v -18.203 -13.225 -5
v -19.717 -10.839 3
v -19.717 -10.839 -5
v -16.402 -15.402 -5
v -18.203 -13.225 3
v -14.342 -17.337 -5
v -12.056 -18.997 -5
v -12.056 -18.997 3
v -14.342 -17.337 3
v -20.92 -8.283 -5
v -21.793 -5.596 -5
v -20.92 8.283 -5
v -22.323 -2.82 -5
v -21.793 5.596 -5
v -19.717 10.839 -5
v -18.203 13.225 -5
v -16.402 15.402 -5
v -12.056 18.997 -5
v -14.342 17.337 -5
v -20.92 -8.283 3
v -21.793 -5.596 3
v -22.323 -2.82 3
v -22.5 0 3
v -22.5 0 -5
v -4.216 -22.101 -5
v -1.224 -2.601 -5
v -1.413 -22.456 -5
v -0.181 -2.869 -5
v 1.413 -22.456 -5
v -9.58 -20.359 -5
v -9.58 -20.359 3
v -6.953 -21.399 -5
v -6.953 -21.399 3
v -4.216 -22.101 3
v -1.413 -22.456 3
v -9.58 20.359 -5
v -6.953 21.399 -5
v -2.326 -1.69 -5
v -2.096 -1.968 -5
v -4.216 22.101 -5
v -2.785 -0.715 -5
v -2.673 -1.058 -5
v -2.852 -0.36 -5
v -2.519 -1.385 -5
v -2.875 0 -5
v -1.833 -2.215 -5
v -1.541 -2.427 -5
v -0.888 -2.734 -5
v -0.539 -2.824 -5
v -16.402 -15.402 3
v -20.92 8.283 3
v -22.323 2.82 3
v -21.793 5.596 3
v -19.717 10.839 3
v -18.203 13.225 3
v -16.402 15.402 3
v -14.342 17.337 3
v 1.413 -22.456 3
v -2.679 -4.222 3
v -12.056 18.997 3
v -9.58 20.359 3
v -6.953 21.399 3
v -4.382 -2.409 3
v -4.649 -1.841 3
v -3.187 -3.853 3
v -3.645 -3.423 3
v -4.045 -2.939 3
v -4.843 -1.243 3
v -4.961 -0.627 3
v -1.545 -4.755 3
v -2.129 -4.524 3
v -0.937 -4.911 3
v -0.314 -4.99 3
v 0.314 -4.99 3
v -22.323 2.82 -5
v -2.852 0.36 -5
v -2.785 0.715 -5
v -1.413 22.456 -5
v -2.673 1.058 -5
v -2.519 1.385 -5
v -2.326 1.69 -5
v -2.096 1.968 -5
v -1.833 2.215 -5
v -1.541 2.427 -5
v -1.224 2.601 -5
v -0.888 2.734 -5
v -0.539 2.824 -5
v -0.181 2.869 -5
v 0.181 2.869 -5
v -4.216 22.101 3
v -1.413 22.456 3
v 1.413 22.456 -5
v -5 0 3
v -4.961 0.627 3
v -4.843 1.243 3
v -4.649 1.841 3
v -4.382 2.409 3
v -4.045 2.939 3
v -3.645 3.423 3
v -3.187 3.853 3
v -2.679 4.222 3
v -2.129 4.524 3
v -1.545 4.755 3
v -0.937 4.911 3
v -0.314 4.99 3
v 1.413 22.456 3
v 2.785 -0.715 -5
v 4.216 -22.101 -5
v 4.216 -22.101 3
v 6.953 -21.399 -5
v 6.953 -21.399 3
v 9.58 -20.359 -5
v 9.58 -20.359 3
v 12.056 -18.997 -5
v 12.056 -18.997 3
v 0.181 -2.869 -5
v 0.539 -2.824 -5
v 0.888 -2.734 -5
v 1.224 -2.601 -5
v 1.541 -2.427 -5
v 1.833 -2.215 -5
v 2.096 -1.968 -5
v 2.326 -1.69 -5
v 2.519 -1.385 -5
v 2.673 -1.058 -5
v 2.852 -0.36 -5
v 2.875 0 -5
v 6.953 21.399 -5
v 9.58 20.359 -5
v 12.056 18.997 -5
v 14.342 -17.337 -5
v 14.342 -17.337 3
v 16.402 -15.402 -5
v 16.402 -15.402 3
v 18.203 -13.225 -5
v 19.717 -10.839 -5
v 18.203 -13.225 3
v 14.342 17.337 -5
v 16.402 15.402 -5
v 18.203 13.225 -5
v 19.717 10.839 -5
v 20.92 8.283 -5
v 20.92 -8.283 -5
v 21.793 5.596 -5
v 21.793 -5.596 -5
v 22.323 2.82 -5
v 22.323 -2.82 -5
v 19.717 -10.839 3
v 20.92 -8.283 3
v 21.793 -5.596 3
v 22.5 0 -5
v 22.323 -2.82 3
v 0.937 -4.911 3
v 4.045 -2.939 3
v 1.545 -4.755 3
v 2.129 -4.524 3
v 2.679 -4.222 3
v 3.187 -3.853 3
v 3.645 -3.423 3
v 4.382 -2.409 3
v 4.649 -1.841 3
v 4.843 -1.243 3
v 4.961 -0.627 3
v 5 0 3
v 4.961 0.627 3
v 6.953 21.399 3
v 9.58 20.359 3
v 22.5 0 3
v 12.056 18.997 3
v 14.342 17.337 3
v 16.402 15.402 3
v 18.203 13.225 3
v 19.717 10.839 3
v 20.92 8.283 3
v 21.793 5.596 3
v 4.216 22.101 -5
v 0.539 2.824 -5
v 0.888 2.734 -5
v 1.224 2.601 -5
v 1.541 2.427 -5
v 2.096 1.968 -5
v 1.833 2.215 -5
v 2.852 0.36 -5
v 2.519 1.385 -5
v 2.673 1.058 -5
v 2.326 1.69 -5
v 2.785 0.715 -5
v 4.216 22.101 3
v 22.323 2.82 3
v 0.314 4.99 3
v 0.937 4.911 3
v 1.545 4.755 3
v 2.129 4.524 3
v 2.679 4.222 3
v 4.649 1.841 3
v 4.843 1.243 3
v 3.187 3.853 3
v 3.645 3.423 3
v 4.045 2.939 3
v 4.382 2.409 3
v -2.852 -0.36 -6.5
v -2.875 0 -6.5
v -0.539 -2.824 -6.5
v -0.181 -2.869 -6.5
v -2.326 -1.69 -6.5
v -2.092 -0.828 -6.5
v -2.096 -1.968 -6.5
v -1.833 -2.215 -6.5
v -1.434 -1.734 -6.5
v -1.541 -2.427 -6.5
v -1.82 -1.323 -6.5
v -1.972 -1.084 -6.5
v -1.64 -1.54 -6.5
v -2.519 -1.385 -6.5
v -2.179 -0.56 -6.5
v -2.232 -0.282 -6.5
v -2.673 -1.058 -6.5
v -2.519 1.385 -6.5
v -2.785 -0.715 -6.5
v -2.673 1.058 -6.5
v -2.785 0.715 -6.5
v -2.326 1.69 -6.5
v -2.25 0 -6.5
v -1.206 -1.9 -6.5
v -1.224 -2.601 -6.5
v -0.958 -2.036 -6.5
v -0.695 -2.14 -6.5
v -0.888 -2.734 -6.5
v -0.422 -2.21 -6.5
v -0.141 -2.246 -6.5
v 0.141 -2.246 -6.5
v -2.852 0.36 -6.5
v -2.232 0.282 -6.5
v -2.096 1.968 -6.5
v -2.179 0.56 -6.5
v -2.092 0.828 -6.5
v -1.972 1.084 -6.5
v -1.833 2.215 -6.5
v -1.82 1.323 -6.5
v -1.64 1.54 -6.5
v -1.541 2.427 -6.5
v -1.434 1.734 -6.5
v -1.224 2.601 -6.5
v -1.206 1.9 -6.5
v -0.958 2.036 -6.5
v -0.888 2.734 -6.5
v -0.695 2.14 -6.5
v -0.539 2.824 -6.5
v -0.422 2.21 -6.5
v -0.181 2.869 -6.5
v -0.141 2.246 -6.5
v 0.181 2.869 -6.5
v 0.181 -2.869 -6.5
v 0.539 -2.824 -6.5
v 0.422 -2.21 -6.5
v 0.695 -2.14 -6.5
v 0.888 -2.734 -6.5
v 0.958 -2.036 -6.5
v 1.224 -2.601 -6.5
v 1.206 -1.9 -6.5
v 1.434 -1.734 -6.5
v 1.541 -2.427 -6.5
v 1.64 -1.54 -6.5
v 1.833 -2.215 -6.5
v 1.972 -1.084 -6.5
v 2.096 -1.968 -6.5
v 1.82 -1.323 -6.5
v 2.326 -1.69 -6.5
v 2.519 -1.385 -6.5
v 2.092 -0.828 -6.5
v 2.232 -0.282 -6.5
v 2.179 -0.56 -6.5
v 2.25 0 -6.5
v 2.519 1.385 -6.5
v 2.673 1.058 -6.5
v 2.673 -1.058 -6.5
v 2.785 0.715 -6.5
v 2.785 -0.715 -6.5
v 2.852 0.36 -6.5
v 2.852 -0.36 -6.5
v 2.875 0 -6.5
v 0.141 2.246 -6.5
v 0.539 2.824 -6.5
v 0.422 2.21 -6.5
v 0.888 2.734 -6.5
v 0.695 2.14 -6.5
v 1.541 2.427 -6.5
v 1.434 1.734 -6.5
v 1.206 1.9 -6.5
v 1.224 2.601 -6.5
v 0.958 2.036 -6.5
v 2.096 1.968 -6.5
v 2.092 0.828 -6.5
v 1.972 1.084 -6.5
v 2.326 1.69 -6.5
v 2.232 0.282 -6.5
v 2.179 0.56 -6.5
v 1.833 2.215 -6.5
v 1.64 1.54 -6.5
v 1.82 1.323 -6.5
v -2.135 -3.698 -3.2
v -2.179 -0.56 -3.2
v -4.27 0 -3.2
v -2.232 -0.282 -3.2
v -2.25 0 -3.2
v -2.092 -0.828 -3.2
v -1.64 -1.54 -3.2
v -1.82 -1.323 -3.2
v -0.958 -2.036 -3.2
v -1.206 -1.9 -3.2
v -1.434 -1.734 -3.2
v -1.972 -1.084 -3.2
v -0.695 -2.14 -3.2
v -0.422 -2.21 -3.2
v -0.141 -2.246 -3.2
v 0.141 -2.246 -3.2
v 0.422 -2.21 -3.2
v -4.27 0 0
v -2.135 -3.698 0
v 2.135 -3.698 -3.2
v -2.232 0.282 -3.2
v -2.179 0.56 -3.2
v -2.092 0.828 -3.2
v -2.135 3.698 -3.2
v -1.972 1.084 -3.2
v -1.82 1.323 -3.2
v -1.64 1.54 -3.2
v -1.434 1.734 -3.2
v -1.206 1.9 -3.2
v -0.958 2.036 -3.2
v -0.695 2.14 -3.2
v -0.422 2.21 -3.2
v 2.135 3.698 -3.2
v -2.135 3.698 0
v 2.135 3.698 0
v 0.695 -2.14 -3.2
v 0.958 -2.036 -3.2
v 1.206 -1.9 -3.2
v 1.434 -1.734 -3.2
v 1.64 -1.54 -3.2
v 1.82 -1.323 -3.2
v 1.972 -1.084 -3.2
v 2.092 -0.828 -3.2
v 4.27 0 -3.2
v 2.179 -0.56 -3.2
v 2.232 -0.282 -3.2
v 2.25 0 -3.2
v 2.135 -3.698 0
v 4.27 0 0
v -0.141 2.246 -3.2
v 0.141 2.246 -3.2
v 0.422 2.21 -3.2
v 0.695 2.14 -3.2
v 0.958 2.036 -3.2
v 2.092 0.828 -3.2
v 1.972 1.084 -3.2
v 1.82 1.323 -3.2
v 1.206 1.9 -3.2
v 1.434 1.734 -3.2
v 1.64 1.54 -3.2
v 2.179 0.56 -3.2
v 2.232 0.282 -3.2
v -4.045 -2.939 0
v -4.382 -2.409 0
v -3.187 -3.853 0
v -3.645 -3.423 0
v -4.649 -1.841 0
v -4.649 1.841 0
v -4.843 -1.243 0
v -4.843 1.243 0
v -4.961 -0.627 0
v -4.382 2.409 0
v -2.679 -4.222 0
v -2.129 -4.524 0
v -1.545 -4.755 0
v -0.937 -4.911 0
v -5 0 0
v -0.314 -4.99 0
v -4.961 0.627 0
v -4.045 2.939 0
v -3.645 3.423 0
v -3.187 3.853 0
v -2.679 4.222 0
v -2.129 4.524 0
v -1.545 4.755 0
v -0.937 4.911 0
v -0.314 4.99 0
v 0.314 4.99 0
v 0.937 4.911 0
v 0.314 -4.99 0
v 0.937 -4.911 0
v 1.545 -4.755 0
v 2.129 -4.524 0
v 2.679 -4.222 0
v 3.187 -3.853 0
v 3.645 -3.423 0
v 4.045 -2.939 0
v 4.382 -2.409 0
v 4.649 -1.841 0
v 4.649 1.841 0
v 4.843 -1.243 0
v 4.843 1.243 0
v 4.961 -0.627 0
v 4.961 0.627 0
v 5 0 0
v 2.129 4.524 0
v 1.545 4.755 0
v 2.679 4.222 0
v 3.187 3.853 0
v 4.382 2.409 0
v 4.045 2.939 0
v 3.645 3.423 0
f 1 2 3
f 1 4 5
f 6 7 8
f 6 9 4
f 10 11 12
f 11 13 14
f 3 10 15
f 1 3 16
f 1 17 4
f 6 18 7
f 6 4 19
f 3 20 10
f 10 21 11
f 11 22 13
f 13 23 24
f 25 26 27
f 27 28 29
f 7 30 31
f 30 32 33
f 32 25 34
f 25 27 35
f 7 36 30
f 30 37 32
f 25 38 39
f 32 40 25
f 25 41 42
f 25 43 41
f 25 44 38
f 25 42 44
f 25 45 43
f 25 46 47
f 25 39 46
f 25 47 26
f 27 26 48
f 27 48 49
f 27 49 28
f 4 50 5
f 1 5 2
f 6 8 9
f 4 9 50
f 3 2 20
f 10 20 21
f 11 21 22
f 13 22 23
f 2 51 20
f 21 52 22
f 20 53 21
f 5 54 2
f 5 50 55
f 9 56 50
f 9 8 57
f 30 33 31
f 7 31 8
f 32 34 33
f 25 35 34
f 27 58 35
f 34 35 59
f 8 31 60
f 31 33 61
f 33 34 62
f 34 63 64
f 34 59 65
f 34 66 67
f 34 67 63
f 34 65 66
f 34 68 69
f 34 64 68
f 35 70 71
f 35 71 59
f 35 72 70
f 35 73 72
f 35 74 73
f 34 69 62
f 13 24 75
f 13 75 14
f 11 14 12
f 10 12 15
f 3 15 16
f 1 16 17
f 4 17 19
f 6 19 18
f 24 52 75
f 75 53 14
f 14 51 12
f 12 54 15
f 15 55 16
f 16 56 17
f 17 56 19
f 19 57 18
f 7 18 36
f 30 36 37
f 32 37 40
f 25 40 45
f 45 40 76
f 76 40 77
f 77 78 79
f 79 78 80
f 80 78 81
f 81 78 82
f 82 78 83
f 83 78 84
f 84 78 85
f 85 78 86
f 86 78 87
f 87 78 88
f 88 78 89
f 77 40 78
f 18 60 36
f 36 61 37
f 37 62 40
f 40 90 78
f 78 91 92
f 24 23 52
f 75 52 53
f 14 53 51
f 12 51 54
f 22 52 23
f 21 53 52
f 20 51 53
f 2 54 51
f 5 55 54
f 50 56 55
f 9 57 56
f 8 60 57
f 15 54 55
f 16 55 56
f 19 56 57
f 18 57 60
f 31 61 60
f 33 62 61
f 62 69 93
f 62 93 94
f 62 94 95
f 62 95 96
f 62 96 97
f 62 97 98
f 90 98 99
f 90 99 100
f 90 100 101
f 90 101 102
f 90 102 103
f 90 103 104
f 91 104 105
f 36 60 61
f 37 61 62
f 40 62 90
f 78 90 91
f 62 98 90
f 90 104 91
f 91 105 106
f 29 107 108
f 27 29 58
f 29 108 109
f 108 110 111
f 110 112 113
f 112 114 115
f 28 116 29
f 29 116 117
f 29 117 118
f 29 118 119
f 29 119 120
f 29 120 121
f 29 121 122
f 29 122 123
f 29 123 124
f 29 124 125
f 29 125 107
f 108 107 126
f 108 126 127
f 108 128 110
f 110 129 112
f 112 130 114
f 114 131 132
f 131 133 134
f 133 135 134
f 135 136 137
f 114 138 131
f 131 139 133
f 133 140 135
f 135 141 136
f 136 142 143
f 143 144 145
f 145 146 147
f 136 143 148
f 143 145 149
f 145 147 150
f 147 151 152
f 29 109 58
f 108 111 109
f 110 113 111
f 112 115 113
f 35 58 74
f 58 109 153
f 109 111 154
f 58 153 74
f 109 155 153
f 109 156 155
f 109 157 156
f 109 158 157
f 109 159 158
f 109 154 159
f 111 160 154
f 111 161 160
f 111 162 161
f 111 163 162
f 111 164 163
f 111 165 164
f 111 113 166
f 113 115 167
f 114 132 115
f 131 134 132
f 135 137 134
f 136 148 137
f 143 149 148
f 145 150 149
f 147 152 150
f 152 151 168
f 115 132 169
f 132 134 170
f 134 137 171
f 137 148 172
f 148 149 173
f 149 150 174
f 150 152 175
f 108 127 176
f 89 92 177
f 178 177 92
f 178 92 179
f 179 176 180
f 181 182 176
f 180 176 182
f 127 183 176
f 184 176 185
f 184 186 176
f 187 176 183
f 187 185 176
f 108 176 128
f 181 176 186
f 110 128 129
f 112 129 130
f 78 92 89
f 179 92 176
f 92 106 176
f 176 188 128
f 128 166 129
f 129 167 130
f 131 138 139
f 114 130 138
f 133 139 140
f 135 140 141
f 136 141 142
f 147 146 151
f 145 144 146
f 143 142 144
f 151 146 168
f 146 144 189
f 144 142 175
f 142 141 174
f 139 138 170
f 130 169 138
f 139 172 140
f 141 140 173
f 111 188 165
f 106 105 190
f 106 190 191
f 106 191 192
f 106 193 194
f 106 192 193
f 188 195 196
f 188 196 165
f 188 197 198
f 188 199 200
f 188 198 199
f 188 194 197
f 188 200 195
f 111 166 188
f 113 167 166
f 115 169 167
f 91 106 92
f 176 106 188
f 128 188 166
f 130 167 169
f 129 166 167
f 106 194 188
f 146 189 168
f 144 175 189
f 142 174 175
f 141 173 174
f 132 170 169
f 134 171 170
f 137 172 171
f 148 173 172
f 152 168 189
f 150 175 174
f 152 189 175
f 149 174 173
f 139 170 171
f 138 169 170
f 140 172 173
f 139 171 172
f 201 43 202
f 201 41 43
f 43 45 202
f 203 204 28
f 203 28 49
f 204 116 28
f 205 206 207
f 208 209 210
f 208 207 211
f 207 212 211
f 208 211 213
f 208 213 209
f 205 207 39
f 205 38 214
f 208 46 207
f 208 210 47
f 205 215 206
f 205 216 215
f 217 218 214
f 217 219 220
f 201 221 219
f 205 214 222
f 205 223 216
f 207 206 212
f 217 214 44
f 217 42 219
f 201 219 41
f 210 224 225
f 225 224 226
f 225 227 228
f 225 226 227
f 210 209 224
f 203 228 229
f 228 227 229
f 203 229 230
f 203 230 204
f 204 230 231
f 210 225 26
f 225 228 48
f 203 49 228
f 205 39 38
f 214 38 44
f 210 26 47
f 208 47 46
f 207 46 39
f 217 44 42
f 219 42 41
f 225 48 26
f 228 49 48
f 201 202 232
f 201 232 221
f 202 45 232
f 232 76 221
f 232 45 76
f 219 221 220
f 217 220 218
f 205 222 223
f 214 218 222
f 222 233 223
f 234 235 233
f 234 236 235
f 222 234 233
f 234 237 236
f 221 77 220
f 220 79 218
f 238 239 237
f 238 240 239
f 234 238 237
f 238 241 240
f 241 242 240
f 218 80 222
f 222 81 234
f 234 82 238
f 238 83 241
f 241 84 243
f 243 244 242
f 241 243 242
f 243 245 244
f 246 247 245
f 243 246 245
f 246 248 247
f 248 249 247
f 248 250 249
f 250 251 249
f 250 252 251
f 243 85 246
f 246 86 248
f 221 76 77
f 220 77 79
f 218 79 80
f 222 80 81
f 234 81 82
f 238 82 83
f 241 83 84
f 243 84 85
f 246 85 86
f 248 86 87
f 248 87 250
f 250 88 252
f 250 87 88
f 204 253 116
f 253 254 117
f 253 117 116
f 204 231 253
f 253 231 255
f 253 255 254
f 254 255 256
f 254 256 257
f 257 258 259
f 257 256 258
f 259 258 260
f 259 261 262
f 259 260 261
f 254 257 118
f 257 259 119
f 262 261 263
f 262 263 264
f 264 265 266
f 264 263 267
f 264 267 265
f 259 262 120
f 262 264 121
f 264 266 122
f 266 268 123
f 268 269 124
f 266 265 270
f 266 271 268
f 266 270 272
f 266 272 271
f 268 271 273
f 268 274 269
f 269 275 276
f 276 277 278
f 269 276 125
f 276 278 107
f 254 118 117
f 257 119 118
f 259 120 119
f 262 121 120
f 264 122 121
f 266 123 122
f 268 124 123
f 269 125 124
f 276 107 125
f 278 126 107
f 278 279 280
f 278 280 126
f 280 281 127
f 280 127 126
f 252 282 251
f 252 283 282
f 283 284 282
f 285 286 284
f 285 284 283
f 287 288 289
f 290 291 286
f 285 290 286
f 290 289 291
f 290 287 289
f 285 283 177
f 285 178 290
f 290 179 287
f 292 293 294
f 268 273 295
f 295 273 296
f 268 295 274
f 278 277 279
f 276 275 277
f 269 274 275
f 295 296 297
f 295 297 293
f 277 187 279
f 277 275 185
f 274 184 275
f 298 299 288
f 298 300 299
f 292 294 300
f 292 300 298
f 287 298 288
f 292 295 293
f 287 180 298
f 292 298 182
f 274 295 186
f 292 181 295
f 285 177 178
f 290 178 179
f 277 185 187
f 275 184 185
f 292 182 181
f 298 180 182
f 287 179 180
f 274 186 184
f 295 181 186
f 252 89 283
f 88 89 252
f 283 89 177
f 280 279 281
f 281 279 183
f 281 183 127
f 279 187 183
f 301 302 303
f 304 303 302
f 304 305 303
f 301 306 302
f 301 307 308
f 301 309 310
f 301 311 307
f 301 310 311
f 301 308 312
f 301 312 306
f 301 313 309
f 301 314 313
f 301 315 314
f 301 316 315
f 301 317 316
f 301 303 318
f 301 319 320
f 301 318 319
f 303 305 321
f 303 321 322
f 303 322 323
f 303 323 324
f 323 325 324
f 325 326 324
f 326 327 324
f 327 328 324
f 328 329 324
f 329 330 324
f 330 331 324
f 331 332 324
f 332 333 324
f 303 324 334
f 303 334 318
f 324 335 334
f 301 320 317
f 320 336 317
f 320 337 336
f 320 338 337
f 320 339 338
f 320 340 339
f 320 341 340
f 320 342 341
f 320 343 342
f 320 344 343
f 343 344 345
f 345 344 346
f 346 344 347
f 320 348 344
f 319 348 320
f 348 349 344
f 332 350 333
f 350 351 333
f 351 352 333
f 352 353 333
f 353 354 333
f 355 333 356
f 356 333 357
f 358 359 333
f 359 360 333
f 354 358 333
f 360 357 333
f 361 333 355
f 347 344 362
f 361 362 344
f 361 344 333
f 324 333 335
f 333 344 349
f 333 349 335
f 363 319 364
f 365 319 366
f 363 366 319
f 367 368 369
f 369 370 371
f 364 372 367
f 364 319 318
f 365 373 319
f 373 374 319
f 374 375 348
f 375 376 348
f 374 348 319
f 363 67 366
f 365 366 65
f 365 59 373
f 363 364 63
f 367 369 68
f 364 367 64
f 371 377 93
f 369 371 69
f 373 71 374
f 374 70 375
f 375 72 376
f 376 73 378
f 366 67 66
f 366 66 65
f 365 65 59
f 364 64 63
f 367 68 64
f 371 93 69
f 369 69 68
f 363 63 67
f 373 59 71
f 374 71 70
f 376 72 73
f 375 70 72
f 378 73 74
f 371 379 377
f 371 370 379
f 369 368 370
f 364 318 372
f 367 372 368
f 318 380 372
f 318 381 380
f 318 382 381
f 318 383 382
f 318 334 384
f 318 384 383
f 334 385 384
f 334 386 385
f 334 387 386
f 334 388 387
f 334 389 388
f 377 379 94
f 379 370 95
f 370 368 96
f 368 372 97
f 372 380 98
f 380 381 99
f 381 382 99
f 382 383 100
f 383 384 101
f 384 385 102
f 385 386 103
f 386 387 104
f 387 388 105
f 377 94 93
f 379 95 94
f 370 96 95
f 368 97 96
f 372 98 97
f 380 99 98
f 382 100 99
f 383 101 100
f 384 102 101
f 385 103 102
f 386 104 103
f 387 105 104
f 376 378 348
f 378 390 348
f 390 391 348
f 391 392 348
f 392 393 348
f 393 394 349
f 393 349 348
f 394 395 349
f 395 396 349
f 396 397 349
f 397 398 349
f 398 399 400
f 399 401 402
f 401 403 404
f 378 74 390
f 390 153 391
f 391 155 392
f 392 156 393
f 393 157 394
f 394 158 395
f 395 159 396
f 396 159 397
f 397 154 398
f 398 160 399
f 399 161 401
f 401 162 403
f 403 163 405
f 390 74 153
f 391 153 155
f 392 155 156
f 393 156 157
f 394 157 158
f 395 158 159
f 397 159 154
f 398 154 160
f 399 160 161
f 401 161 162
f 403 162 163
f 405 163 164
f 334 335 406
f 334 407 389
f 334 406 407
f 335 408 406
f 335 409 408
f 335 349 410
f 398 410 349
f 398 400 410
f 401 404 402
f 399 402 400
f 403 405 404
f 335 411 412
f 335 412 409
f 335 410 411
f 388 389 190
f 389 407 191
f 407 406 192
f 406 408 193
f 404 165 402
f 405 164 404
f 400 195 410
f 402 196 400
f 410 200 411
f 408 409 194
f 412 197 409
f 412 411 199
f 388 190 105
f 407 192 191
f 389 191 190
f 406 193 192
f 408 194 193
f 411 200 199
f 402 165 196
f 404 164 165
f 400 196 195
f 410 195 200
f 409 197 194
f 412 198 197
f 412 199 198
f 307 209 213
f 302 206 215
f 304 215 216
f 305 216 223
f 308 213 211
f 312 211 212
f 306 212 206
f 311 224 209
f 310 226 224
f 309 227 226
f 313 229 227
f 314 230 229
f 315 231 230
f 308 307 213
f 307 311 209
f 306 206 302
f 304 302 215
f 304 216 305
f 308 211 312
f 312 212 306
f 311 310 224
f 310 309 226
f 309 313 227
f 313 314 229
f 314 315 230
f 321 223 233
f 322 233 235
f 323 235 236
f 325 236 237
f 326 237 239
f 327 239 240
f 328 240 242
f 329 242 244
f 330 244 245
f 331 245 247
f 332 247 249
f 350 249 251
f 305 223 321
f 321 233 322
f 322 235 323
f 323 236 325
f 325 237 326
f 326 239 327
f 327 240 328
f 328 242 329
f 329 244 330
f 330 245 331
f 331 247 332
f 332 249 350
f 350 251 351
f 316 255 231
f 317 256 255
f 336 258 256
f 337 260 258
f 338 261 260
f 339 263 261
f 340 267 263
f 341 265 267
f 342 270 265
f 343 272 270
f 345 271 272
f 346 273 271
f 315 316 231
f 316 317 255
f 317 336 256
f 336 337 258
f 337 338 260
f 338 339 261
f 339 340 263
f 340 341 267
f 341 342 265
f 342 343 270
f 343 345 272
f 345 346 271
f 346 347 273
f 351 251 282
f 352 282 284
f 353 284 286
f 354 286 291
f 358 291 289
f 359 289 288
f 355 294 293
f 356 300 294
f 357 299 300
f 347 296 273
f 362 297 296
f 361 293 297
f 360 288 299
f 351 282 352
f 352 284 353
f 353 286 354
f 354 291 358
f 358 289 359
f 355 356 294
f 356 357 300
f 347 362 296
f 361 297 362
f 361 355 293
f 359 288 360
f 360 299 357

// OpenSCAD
$fn = 50;

difference() {
	union() {
		translate(v = [0, 0, -5.0]) {
			cylinder(h = 8.0, r = 22.5);
		}
		#translate(v = [0, 0, -6.5]) {
			cylinder(h = 6.5, r = 2.875);
		}
	}
	union() {
		translate(v = [0, 0, 0]) {
			rotate(a = [0, 0, 0]) {
				difference() {
					union() {
						translate(v = [0, 0, -3.2]) {
							linear_extrude(height = 3.2) {
								polygon(points = [[4.2698, 0.0], [2.1349000000000005, 3.697755269078796], [-2.134899999999999, 3.6977552690787965], [-4.2698, 5.228996902999369e-16], [-2.134900000000002, -3.6977552690787956], [2.1348999999999974, -3.697755269078798]]);
							}
						}
					}
					union();
				}
			}
		}
		#cylinder(h = 3, r = 5.0);
		#translate(v = [0, 0, -100.0]) {
			cylinder(h = 200, r = 2.25);
		}
	}
}
